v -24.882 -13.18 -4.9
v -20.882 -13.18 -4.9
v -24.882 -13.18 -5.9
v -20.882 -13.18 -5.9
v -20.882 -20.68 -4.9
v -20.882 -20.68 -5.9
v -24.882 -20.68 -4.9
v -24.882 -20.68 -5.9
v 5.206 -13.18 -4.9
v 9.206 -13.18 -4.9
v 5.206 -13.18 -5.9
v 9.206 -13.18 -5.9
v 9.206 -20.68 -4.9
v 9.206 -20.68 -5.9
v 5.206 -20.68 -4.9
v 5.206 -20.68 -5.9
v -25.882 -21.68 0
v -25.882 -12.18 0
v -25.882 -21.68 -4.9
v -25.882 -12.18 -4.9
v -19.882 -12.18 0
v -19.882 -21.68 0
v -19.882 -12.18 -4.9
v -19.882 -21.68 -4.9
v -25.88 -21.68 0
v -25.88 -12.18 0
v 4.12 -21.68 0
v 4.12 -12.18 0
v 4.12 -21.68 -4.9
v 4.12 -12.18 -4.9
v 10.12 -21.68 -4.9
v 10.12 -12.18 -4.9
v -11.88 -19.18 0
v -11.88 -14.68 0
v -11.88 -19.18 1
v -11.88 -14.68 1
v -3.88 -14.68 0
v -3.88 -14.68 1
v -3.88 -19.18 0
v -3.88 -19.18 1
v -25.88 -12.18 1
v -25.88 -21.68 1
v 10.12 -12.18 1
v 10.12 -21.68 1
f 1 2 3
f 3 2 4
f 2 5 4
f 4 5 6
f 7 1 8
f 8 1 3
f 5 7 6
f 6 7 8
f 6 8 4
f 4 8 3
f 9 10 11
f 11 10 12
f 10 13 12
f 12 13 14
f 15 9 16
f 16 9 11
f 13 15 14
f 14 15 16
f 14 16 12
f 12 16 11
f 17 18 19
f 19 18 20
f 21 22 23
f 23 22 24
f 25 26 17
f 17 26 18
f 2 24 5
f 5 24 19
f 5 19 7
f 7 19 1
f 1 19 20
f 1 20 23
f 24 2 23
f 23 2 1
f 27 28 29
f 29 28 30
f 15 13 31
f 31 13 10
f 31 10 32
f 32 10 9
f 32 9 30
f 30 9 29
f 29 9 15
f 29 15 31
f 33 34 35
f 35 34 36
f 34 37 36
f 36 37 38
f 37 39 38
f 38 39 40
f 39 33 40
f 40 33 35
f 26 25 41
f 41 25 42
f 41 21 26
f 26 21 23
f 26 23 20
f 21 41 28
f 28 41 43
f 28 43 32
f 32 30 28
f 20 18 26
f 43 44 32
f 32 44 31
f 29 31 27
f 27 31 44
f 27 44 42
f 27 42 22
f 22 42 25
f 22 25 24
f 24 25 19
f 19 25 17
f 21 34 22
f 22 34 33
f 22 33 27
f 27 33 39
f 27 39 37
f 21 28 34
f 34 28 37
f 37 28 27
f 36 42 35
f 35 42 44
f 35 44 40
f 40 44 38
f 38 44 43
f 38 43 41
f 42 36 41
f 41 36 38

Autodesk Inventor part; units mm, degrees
ref_plane "YZ Plane" through (0, 0, 0) normal (1, 0, 0) x (0, 1, 0)
ref_plane "XZ Plane" through (0, 0, 0) normal (0, 1, 0) x (-1, 0, 0)
ref_plane "XY Plane" through (0, 0, 0) normal (0, 0, 1) x (1, 0, 0)
sketch "Sketch1" plane through (0, 0, 0) normal (0, 0, 1) x (1, 0, 0)
  line L0 (10.12, -21.6797) -> (-25.88, -21.6797)
  line L1 (-25.88, -21.6797) -> (-25.88, -12.1797)
  line L2 (-25.88, -12.1797) -> (10.12, -12.1797)
  line L3 (10.12, -12.1797) -> (10.12, -21.6797)
  line L4 (-3.88, -19.1797) -> (-11.88, -19.1797)
  line L5 (-11.88, -19.1797) -> (-11.88, -14.6797)
  line L6 (-11.88, -14.6797) -> (-3.88, -14.6797)
  line L7 (-3.88, -14.6797) -> (-3.88, -19.1797)
  line L8 (-20.9351, -12.1797) -> (-26.9351, -12.1797) construction
  point P0 (0, 0)
  point P1 (-7.88, -16.9297)
  dimension "d3" = 36
  dimension "d5" = 9.5
  dimension "d6" = 18
  dimension "d7" = 4.75
  dimension "d8" = 8
  dimension "d9" = 4.5
  dimension "d10" = 2.25
  dimension "d11" = 4
extrude "SUPPORT TABLE" add sketch "Sketch1" along normal blind 1
sketch "Sketch2" plane through (0, 0, 0) normal (0, 0, -1) x (-1, 0, 0)
  line L0 (21.9351, -13.1797) -> (21.9351, -20.6797) construction
  line L1 (21.9351, -20.6797) -> (25.9351, -20.6797) construction
  line L2 (25.9351, -20.6797) -> (25.9351, -13.1797) construction
  line L3 (25.9351, -13.1576) -> (21.9351, -13.1576) construction
  line L4 (7.838, -23.7532) -> (7.838, -10.1502) construction
  line L5 (19.882, -21.6797) -> (19.882, -12.1797)
  line L6 (19.882, -12.1797) -> (25.882, -12.1797)
  line L7 (25.882, -12.1797) -> (25.882, -21.6797)
  line L8 (25.882, -21.6797) -> (19.882, -21.6797)
  line L9 (-5.118, -13.1797) -> (-5.118, -20.6797) construction
  line L10 (-5.118, -20.6797) -> (-9.118, -20.6797) construction
  line L11 (-9.118, -20.6797) -> (-9.118, -13.1797) construction
  line L12 (-9.118, -13.1797) -> (-5.118, -13.1797) construction
  line L13 (-4.12, -21.6797) -> (-4.12, -12.1797)
  line L14 (-4.12, -12.1797) -> (-10.12, -12.1797)
  line L15 (-10.12, -12.1797) -> (-10.12, -21.6797)
  line L16 (-10.12, -21.6797) -> (-4.12, -21.6797)
  line L17 (25.88, -21.6797) -> (25.88, -12.1797) construction
  line L18 (25.88, -12.1797) -> (-10.12, -12.1797) projected
  point P0 (0, 0)
extrude "LEGS" add sketch "Sketch2" along normal blind 4.9
sketch "Sketch3" plane through (0, 0, 0) normal (0, 0, -1) x (-1, 0, 0)
  line L0 (25.882, -21.6797) -> (25.882, -12.1797) construction
  line L1 (19.882, -21.6797) -> (25.882, -21.6797) construction
  line L2 (19.882, -12.1797) -> (19.882, -21.6797) construction
  line L3 (19.882, -12.1797) -> (19.882, -21.6797) construction
  line L4 (19.882, -21.6797) -> (25.882, -21.6797) construction
  line L5 (25.882, -21.6797) -> (25.882, -12.1797) construction
  line L6 (25.882, -12.1797) -> (19.882, -12.1797) construction
  line L7 (-4.12, -12.1797) -> (-10.12, -12.1797) construction
  line L8 (-10.12, -12.1797) -> (-10.12, -21.6797) construction
  line L9 (-10.12, -21.6797) -> (-4.12, -21.6797) construction
  line L10 (-4.12, -21.6797) -> (-4.12, -12.1797) construction
  line L11 (24.882, -20.6797) -> (20.882, -20.6797)
  line L12 (20.882, -20.6797) -> (20.882, -13.1797)
  line L13 (20.882, -13.1797) -> (24.882, -13.1797)
  line L14 (24.882, -13.1797) -> (24.882, -20.6797)
  line L15 (7.838, -20.9409) -> (7.838, -12.9184) construction
  line L16 (-9.206, -20.6797) -> (-5.206, -20.6797)
  line L17 (-5.206, -20.6797) -> (-5.206, -13.1797)
  line L18 (-5.206, -13.1797) -> (-9.206, -13.1797)
  line L19 (-9.206, -13.1797) -> (-9.206, -20.6797)
  point P0 (0, 0)
  point P1 (7.838, -16.9297)
  point P2 (7.838, -16.9297)
  dimension "d24" = 1
  dimension "d25" = 1
  dimension "d26" = 1
  dimension "d27" = 1
extrude "PINS FOR LINEUP" add sketch "Sketch3" along normal blind 5.9
equation "\"d10\" = 0.5 * d9"
equation "\"d11\" = 0.5 * d8"
properties part number "InternalSupportBracket"
